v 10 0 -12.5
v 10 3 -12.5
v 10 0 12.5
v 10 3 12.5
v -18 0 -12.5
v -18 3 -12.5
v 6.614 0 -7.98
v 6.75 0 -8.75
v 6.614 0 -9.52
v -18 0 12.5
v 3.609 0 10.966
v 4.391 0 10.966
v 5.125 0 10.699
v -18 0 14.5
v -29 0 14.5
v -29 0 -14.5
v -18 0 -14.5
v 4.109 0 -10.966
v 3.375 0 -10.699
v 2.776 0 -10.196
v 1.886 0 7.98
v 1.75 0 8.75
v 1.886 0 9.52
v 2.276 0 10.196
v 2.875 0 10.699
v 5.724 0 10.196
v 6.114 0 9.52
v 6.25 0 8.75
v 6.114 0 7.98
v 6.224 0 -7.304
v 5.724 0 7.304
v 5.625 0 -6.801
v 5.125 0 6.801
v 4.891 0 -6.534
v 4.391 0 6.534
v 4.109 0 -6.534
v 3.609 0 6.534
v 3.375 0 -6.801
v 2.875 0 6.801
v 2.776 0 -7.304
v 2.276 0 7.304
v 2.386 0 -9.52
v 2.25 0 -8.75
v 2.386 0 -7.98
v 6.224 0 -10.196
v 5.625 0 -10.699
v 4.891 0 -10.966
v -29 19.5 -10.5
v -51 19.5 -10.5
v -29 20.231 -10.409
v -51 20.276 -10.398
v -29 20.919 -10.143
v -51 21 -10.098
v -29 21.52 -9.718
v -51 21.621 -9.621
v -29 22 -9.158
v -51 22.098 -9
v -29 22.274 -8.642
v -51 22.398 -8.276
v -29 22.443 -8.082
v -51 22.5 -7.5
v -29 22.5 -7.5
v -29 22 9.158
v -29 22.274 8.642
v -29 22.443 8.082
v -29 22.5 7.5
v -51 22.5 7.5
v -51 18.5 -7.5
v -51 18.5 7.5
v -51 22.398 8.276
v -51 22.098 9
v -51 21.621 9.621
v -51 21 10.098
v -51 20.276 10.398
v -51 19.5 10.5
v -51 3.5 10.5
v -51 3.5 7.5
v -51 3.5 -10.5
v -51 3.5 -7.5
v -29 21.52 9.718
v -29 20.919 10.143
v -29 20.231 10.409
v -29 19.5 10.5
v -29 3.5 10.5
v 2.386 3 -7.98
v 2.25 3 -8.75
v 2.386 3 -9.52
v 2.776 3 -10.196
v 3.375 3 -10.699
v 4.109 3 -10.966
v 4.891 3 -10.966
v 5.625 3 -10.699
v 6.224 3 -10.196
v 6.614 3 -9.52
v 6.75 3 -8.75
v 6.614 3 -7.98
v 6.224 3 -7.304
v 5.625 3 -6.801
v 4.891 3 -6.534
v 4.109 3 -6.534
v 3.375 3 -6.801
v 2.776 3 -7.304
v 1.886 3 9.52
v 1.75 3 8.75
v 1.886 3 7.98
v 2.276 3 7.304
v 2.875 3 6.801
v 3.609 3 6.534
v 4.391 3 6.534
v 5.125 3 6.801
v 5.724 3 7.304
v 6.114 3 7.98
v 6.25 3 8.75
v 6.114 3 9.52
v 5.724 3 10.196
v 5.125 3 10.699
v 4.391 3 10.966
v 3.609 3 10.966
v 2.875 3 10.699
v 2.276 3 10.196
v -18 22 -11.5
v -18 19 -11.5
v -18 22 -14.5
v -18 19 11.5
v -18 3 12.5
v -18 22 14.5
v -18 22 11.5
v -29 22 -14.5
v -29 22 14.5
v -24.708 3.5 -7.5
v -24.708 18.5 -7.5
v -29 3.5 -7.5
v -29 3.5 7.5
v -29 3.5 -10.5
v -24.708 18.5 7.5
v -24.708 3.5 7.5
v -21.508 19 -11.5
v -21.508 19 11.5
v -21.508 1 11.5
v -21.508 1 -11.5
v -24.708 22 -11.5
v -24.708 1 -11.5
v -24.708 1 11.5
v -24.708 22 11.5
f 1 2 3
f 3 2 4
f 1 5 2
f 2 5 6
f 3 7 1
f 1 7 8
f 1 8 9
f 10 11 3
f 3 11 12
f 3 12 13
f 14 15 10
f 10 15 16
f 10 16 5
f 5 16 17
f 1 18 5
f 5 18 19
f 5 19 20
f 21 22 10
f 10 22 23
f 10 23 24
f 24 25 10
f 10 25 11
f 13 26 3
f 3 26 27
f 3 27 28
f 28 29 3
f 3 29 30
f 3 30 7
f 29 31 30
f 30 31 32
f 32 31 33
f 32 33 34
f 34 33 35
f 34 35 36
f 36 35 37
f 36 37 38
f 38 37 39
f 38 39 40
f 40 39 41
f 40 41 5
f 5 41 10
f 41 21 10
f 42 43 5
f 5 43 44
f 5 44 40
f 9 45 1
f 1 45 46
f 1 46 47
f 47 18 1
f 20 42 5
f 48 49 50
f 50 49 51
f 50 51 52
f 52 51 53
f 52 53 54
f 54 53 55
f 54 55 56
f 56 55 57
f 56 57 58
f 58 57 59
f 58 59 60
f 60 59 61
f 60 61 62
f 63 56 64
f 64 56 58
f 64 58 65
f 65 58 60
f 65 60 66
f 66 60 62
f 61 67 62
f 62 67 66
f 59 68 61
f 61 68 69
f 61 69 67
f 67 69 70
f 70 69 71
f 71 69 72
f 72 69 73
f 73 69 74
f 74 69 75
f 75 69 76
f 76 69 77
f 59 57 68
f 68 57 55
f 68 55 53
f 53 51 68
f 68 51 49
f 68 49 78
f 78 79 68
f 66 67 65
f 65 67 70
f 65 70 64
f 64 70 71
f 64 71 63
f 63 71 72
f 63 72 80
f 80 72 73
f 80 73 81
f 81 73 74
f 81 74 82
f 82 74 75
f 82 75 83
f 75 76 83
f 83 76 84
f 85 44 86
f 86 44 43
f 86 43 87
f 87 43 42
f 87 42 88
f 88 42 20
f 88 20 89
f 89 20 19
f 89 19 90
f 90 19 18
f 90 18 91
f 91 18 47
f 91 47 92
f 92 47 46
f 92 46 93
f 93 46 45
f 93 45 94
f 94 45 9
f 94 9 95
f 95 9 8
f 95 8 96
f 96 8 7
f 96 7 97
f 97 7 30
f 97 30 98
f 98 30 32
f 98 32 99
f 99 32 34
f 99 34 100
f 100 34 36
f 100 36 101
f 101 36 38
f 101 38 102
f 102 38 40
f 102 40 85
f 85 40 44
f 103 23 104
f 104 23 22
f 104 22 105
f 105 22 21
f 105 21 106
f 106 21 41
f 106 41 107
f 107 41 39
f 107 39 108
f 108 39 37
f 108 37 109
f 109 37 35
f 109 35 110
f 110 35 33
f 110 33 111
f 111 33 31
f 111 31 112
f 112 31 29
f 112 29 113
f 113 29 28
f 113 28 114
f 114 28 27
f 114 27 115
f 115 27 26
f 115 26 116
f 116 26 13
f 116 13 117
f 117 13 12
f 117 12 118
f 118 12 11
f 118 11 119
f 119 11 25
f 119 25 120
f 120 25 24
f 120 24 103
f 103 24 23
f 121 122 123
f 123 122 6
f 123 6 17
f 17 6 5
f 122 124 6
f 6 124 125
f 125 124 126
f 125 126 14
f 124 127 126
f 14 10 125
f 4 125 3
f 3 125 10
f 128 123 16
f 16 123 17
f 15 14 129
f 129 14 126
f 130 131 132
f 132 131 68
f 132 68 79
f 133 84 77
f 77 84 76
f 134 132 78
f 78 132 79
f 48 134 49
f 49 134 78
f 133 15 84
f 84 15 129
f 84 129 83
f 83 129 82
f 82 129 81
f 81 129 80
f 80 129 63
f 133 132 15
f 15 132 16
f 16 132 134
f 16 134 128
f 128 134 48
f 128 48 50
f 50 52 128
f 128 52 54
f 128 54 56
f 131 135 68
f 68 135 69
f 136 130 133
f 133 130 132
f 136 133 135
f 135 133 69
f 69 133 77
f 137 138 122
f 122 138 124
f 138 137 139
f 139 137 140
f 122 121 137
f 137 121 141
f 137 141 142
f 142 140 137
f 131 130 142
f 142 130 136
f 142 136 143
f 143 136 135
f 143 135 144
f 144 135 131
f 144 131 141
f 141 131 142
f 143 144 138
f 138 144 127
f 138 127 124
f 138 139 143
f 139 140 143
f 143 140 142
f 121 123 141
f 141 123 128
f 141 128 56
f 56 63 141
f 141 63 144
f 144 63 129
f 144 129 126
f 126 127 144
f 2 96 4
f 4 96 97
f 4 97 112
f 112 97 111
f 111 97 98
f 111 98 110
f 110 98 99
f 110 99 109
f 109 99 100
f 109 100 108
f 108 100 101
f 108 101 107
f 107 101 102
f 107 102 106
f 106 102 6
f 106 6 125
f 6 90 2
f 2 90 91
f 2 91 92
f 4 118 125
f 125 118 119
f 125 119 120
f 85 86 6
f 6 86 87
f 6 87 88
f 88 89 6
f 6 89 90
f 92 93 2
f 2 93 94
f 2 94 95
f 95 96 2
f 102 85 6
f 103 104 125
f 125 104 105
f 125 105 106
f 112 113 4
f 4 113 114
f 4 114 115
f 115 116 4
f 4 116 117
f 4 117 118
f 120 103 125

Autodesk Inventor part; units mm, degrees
ref_plane "YZ Plane" through (0, 0, 0) normal (1, 0, 0) x (0, 1, 0)
ref_plane "XZ Plane" through (0, 0, 0) normal (0, 1, 0) x (-1, 0, 0)
ref_plane "XY Plane" through (0, 0, 0) normal (0, 0, 1) x (1, 0, 0)
sketch "Sketch1" plane through (0, 0, 0) normal (0, 1, 0) x (-1, 0, 0)
  line L0 (-20, 12.5) -> (20, 12.5)
  line L1 (20, 12.5) -> (20, -12.5)
  line L2 (20, -12.5) -> (-20, -12.5)
  line L3 (-20, -12.5) -> (-20, 12.5)
  line L4 (-20, 12.5) -> (20, -12.5) construction
  line L5 (20, 12.5) -> (-20, -12.5) construction
  circle A0 centre (-4, 8.75) radius 2.25
  circle A1 centre (-4.5, -8.75) radius 2.25
  point P0 (0, 0)
  dimension "d0" = 40
  dimension "d1" = 25
  dimension "d49" = 4.5
  dimension "d50" = 4.5
extrude "Extrusion1" add sketch "Sketch1" along normal blind 3 contours L0 L1 L2 L3 | A0 | A1
sketch "Sketch3" plane through (-20, 0, -12.5) normal (-1, 0, 0) x (0, 0, 1)
  line L0 (0, 0) -> (25, 0) projected
  line L1 (0, 0) -> (25, 0)
  line L2 (25, 0) -> (25, 22)
  line L3 (25, 22) -> (0, 22)
  line L4 (0, 22) -> (0, 0)
  point P0 (12.5, 0)
  dimension "d14" = 22
extrude "Extrusion4" add sketch "Sketch3" along normal blind 9
sketch "Sketch4" plane through (-20, 22, 12.5) normal (0, 1, 0) x (1, 0, 0)
  line L0 (-4.7075, 24) -> (-1.5075, 24)
  line L1 (-1.5075, 24) -> (-1.5075, 1)
  line L2 (-1.5075, 1) -> (-4.7075, 1)
  line L3 (-4.7075, 1) -> (-4.7075, 24)
  point P0 (20, 12.5)
  dimension "d17" = 3.2
  dimension "d18" = 23
extrude "Extrusion5" cut sketch "Sketch4" against normal blind 21
sketch "Sketch6" plane through (-21.5075, 22, -11.5) normal (-1, 0, 0) x (0, 0, 1)
  line L0 (0, 0) -> (23, 0) projected
  line L1 (0, 0) -> (23, 0)
  line L2 (23, 0) -> (23, -3)
  line L3 (23, -3) -> (0, -3)
  line L4 (0, -3) -> (0, 0)
  point P0 (11.5, -22)
  dimension "d26" = 3
extrude "Extrusion7" cut sketch "Sketch6" against normal blind 3
sketch "Sketch5" plane through (-29, 0, -12.5) normal (-1, 0, 0) x (0, 0, 1)
  line L0 (20, 18.5) -> (20, 3.5)
  line L1 (20, 3.5) -> (5, 3.5)
  line L2 (5, 3.5) -> (5, 18.5)
  line L3 (5, 18.5) -> (20, 18.5)
  point P0 (12.5, 0)
  dimension "d21" = 15
  dimension "d22" = 15
extrude "Extrusion6" cut sketch "Sketch5" against normal blind 7
sketch "Sketch7" plane through (-29, 0, -12.5) normal (-1, 0, 0) x (0, 0, 1)
  line L0 (20, 3.5) -> (5, 3.5) projected
  line L1 (5, 3.5) -> (2, 3.5)
  line L2 (2, 3.5) -> (2, 22.5)
  line L3 (2, 22.5) -> (5, 22.5)
  line L4 (5, 22.5) -> (5, 3.5)
  line L5 (5, 22.5) -> (20, 22.5)
  line L6 (20, 22.5) -> (20, 18.5)
  line L7 (20, 18.5) -> (5, 18.5)
  line L8 (5, 18.5) -> (5, 22.5)
  line L9 (20, 3.5) -> (20, 22.5)
  line L10 (20, 22.5) -> (23, 22.5)
  line L11 (23, 22.5) -> (23, 3.5)
  line L12 (23, 3.5) -> (20, 3.5)
  line L13 (25, 0) -> (25, 22) projected
  point P0 (12.5, 0)
  dimension "d29" = 3
  dimension "d30" = 19
  dimension "d31" = 15
  dimension "d32" = 3
extrude "Extrusion8" add sketch "Sketch7" along normal blind 1 contours L1 L2 L3 L4
extrude "Extrusion9" add sketch "Sketch7" along normal blind 22 contours L9 L6 L10 L11 L12 | L7 L4 L5 L6
extrude "Extrusion10" add sketch "Sketch7" along normal blind 22 contours L1 L2 L3 L4
sketch "Sketch8" plane through (20, 0, 12.5) normal (0, 0, 1) x (1, 0, 0)
  line L0 (-40, 22) -> (-49, 22) projected
  line L1 (-49, 22) -> (-40, 22)
  line L2 (-40, 22) -> (-40, 0)
  line L3 (-40, 0) -> (-49, 0)
  line L4 (-49, 0) -> (-49, 22)
  point P0 (-20, 0)
extrude "Extrusion11" add sketch "Sketch8" along normal blind 2
sketch "Sketch9" plane through (20, 0, -12.5) normal (0, 0, -1) x (-1, 0, 0)
  line L0 (40, 22) -> (44.7075, 22) projected
  line L1 (49, 22) -> (40, 22)
  line L2 (40, 22) -> (40, 0)
  line L3 (40, 0) -> (49, 0)
  line L4 (49, 0) -> (49, 22)
  point P0 (20, 0)
extrude "Extrusion12" add sketch "Sketch9" along normal blind 2
sketch "Sketch10" plane through (-20, 0, -12.5) normal (1, 0, 0) x (0, 0, -1)
  line L0 (-27, 0) -> (-27, 22) projected
  line L1 (2, 22) -> (2, 0) projected
  line L2 (-27, 22) -> (2, 22)
  line L3 (2, 22) -> (2, 0)
  line L4 (2, 0) -> (-27, 0)
  line L5 (-27, 0) -> (-27, 22)
  point P0 (-12.5, 0)
extrude "Extrusion13" add sketch "Sketch10" along normal blind 2
sketch "Sketch11" plane through (-20, 0, -12.5) normal (-1, 0, 0) x (0, 0, 1)
  line L0 (1, 22) -> (1, 19) projected
  line L1 (1, 22) -> (24, 22) projected
  line L2 (1, 19) -> (1, 22)
  line L3 (1, 22) -> (24, 22)
  line L4 (24, 22) -> (24, 19)
  line L5 (24, 19) -> (1, 19)
  point P0 (12.5, 0)
extrude "Extrusion14" cut sketch "Sketch11" against normal blind 2
extrude "Extrusion15" cut sketch "Sketch1" along normal blind 3 contours A0 | A1
fillet "Fillet2" radius 3 2 edges at (-40, 22.5, 10.5) (-40, 22.5, -10.5)
sketch "Sketch12" plane through (20, 0, -12.5) normal (0, 0, -1) x (-1, 0, 0)
  line L0 (0, 3) -> (38, 3) projected
  line L1 (0, 3) -> (10, 3)
  line L2 (10, 3) -> (10, 0)
  line L3 (10, 0) -> (0, 0)
  line L4 (0, 0) -> (0, 3)
  point P0 (20, 0)
  dimension "d54" = 10
extrude "Extrusion16" cut sketch "Sketch12" against normal blind 25
properties part number "rgb-mount-group2"
